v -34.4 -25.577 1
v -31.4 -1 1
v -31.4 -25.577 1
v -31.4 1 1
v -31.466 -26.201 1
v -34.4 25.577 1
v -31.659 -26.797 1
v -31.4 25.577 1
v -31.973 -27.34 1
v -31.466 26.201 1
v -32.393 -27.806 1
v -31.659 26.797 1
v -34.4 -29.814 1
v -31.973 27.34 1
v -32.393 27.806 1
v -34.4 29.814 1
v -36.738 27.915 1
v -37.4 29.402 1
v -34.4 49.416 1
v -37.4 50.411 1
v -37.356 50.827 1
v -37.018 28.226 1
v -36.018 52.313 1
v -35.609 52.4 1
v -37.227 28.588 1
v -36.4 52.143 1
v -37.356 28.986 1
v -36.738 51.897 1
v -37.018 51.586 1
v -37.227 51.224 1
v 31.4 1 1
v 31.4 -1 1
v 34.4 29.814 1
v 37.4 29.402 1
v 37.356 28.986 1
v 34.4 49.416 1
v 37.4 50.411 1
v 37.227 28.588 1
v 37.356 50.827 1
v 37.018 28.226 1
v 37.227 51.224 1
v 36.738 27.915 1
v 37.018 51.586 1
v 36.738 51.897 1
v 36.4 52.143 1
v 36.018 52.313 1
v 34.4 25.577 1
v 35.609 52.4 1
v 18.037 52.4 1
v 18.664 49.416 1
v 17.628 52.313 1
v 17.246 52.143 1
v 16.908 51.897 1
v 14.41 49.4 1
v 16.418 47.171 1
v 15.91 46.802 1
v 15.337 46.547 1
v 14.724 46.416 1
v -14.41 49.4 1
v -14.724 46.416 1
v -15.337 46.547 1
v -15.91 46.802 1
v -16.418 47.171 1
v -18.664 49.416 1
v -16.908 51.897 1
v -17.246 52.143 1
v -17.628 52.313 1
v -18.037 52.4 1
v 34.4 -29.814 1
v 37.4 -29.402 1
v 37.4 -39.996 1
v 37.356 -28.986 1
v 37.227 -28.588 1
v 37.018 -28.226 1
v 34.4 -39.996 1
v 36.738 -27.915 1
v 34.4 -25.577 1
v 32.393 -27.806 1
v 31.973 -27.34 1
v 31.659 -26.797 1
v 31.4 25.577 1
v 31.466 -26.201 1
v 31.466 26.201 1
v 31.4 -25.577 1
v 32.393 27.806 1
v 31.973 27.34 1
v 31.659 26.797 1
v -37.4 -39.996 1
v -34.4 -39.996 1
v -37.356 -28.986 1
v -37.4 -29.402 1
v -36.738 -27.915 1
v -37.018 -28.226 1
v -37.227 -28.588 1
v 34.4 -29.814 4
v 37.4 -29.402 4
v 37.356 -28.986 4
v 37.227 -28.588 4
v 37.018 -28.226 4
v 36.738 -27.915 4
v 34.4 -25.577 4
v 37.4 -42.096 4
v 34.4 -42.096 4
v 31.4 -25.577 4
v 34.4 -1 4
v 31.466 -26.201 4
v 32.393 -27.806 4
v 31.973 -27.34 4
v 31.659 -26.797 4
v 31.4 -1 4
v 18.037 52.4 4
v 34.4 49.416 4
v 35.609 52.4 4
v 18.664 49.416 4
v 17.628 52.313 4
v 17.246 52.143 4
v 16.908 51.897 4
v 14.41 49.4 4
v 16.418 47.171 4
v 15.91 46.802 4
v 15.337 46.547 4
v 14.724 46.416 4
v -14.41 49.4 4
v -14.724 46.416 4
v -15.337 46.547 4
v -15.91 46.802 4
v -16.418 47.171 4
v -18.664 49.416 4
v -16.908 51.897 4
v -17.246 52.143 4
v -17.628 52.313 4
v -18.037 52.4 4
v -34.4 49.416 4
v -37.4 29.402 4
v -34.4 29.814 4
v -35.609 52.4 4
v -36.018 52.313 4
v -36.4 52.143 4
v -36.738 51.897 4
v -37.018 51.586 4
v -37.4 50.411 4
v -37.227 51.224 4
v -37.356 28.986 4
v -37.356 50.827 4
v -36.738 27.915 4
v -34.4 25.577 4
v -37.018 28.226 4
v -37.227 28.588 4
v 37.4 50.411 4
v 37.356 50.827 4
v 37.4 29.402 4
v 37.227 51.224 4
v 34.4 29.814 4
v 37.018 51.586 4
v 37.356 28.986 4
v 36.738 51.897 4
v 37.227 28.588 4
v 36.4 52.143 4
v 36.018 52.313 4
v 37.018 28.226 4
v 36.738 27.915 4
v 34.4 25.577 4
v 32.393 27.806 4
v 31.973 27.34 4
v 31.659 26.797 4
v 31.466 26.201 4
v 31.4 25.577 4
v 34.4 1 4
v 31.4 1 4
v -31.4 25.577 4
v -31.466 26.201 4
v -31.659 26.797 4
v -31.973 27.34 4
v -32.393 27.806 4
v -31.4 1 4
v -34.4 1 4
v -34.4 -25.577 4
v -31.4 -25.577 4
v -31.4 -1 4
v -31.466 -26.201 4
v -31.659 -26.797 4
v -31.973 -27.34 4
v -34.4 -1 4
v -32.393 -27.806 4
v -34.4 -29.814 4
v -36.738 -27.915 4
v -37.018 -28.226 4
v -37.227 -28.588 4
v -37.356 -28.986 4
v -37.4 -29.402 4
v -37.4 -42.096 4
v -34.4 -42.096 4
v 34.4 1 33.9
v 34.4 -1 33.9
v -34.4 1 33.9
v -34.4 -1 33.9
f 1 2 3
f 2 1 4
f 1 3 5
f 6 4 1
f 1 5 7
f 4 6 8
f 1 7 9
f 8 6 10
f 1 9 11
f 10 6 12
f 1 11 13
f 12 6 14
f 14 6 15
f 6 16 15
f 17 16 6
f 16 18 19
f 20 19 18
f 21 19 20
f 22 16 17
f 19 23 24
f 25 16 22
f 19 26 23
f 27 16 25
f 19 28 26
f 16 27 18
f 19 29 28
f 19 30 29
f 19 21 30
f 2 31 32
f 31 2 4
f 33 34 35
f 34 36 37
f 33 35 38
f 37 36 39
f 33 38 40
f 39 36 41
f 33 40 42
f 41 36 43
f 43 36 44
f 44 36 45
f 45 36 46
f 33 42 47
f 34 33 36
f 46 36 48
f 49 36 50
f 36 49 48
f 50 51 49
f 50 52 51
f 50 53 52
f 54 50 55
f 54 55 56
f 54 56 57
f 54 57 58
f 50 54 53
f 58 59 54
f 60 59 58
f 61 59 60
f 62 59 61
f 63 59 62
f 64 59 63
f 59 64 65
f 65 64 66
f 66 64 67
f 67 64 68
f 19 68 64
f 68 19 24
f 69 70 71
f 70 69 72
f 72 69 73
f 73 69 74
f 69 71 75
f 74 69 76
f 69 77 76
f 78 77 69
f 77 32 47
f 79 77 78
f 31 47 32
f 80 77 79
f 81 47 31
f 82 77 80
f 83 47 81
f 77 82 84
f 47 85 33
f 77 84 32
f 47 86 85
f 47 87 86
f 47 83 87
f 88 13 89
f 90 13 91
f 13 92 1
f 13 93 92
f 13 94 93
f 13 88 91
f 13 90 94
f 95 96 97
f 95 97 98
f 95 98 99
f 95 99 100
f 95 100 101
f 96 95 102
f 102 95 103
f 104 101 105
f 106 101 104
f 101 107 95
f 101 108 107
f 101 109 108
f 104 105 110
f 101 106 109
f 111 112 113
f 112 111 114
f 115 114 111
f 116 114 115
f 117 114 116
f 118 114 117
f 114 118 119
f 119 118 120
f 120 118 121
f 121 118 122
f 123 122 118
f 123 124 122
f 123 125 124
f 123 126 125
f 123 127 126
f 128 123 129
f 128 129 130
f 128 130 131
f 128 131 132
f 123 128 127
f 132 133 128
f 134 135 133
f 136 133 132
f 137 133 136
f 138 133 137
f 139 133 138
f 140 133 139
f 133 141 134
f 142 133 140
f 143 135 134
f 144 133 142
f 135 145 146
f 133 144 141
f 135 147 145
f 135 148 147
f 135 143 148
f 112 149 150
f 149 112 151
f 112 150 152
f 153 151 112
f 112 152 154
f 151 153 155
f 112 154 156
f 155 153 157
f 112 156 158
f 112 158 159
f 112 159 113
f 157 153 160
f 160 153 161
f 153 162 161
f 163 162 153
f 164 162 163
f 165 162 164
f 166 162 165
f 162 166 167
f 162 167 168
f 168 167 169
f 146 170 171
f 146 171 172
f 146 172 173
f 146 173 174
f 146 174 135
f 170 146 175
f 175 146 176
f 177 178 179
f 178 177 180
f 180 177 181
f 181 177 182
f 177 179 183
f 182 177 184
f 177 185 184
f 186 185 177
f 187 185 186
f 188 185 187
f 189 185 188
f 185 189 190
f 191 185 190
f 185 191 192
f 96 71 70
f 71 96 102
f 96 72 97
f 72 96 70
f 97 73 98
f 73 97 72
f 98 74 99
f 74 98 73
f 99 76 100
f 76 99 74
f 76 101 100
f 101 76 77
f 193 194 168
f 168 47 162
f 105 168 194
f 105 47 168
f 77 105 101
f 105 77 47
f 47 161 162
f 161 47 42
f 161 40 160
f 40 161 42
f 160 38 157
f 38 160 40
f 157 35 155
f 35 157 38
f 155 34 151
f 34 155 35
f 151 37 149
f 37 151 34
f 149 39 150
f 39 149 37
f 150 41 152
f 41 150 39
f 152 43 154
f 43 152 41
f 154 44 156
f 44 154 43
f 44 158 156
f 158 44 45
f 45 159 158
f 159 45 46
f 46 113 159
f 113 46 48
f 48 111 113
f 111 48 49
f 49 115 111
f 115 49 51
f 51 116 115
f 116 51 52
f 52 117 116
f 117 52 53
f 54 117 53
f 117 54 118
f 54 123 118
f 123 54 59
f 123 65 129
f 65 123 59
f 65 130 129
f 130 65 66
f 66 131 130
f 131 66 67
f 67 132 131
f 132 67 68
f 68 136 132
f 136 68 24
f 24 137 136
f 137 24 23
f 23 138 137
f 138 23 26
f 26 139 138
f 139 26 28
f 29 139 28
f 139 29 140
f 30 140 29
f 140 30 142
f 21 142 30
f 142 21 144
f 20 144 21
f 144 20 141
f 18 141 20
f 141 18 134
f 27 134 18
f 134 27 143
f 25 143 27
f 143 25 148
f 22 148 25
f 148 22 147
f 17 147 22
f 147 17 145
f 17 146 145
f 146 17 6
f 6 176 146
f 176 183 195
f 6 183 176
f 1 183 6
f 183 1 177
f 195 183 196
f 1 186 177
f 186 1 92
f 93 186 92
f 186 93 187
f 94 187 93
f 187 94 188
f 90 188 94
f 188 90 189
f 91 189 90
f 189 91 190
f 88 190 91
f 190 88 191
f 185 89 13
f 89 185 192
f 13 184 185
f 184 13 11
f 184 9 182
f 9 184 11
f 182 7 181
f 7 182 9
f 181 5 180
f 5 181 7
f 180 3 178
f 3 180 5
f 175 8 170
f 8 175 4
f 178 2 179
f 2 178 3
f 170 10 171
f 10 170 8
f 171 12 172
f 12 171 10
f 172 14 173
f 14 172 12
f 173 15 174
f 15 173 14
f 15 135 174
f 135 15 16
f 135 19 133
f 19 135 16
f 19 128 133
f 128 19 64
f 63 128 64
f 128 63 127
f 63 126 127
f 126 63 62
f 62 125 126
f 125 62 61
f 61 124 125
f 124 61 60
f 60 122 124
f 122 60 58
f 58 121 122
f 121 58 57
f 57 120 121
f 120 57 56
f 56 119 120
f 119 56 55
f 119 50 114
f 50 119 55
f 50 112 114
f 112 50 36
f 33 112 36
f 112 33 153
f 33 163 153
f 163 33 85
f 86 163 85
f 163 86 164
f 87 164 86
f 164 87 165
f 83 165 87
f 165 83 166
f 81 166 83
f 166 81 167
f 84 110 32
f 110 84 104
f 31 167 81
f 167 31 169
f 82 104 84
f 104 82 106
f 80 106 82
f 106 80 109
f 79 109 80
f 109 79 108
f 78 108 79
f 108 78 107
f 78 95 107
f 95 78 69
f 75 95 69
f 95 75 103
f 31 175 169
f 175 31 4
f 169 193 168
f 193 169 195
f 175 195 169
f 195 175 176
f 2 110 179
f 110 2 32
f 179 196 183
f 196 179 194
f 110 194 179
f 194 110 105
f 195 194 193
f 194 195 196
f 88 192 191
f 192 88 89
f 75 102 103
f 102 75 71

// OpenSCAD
// file: scad-utils/morphology.scad
// Copyright (c) 2013 Oskar Linde. All rights reserved.
// License: BSD
//
// This library contains basic 2D morphology operations
//
// outset(d=1)            - creates a polygon at an offset d outside a 2D shape
// inset(d=1)             - creates a polygon at an offset d inside a 2D shape
// fillet(r=1)            - adds fillets of radius r to all concave corners of a 2D shape
// rounding(r=1)          - adds rounding to all convex corners of a 2D shape
// shell(d,center=false)  - makes a shell of width d along the edge of a 2D shape
//                        - positive values of d places the shell on the outside
//                        - negative values of d places the shell on the inside
//                        - center=true and positive d places the shell centered on the edge

module outset(d=1) {
	// Bug workaround for older OpenSCAD versions
	if (version_num() < 20130424) render() outset_extruded(d) children();
	else minkowski() {
		circle(r=d);
		children();
	}
}

module outset_extruded(d=1) {
   projection(cut=true) minkowski() {
        cylinder(r=d);
        linear_extrude(center=true) children();
   }
}

module inset(d=1) {
	 render() inverse() outset(d=d) inverse() children();
}

module fillet(r=1) {
	inset(d=r) render() outset(d=r) children();
}

module rounding(r=1) {
	outset(d=r) inset(d=r) children();
}

module shell(d,center=false) {
	if (center && d > 0) {
		difference() {
			outset(d=d/2) children();
			inset(d=d/2) children();
		}
	}
	if (!center && d > 0) {
		difference() {
			outset(d=d) children();
			children();
		}
	}
	if (!center && d < 0) {
		difference() {
			children();
			inset(d=-d) children();
		}
	}
	if (d == 0) children();
}


// Below are for internal use only

module inverse() {
	difference() {
		square(1e5,center=true);
		children();
	}
}


// TEST CODE

use <mirror.scad>

module arrow(l=1,w=.6,t=0.15) {
	mirror_y() polygon([[0,0],[l,0],[l-w/2,w/2],[l-w/2-sqrt(2)*t,w/2],[l-t/2-sqrt(2)*t,t/2],[0,t/2]]);
}

module shape() {
	polygon([[0,0],[1,0],[1.5,1],[2.5,1],[2,-1],[0,-1]]);
}

if(0) assign($fn=32) {

	for (p = [0:10*3-1]) assign(o=floor(p/3)) {
		translate([(p%3)*2.5,-o*3]) {
			//%if (p % 3 == 1) translate([0,0,1]) shape();
			if (p % 3 == 0) shape();
			if (p % 3 == 1) translate([0.6,0]) arrow();
			if (p % 3 == 2) {
				if (o == 0) inset(d=0.3) shape();
				if (o == 1) outset(d=0.3) shape();
				if (o == 2) rounding(r=0.3) shape();
				if (o == 3) fillet(r=0.3) shape();
				if (o == 4) shell(d=0.3) shape();
				if (o == 5) shell(d=-0.3) shape();
				if (o == 6) shell(d=0.3,center=true) shape();
				if (o == 7) rounding(r=0.3) fillet(r=0.3) shape();
				if (o == 8) shell(d=0.3,center=true) fillet(r=0.3) rounding(r=0.3) shape();
				if (o == 9) shell(d=-0.3) fillet(r=0.3) rounding(r=0.3) shape();
			}
		}
	}
}
// file: scad-utils/mirror.scad
// Copyright (c) 2013 Oskar Linde. All rights reserved.
// License: BSD
//
// This library contains simple mirroring functions
//
// mirror_x()
// mirror_y()
// mirror_z()


module mirror_x() {
  union() {
    child();
    scale([-1,1,1]) child();
  }
}

module mirror_y() {
  union() {
    child();
    scale([1,-1,1]) child();
  }
}

module mirror_z() {
  union() {
    child();
    scale([1,1,-1]) child();
  }
}
// file: parametric-stackable-box.scad
include <scad-utils/mirror.scad>
include <scad-utils/morphology.scad>

$fn=30;

/* Parameters */
BODY_X = 80;
BODY_Y = 110;
BODY_Z = 47;

module base(r=1) {
  basePoints = [
    [BODY_X/2, 0],
    [0, 0],
    [0, BODY_Y/4],
    [3, BODY_Y/4 + 3],
    [3, BODY_Y/4 * 3 - 3],
    [0, BODY_Y/4 * 3],
    [0, BODY_Y/4 * 4],
    [0 + BODY_X/3 - 3, BODY_Y/4 * 4],
    [0 + BODY_X/3, BODY_Y/4 * 4 - 3],
    [BODY_X/2, BODY_Y/4 * 4 - 3],
  ];

  pointsCentered = [for (p=basePoints)
    [
      p[0] - BODY_X/2,
      p[1] - BODY_Y/2
    ]
  ];

  points = concat(
    pointsCentered,
    [for (p=pointsCentered) [p[0]*-1, p[1]] ]
  );

  rounding(r=r)
  polygon(points=points);
}

/* Parameters 2 */
WALL_THICK = 0.4*4;

HOLDER_Z_TOTAL = 10;
HOLDER_Z_JOINT = 3;
HOLDER_Z = HOLDER_Z_TOTAL - HOLDER_Z_JOINT;
HOLDER_DELTA = 0.8+0.4*4;
HOLDER_CLEARANCE = 0.4*2;

FRONT_EDGE_DEG = 35;
FRONT_EDGE_LEN = 20;

FRONT_EDGE_TOP_DEG = 30;
FRONT_EDGE_TOP_LEN = 25;

module body() {
  difference() {
    union() {
      // inner
      linear_extrude(height=BODY_Z-HOLDER_Z_TOTAL, center=!true, convexity=10, twist=0)
      base();

      // joint
      translate([0, 0, BODY_Z-HOLDER_Z])
      minkowski() {
        hull() {
          linear_extrude(height=0.01, center=!true)
          rounding(r=2-0.01)
          square(size=[HOLDER_DELTA*2, HOLDER_DELTA*2], center=true);
          translate([0, 0, -HOLDER_Z_JOINT])
          sphere(r=0.01);
        }

        linear_extrude(
          height=0.01,
          center=!true,
          convexity=10
        )
        base();
      }

      // holder
      translate([0, 0, BODY_Z-HOLDER_Z])
      linear_extrude(height=HOLDER_Z, center=!true, convexity=10, twist=0)
      offset(r=HOLDER_DELTA)
      base();
    }

    // inner space
    difference() {
      translate([0, 0, 1])
      linear_extrude(height=BODY_Z, center=!true, convexity=10, twist=0)
      offset(r=-WALL_THICK)
      base();

      // frontEdge
      frontEdge();
    }

    // holder inner space
    translate([0, 0, BODY_Z-HOLDER_Z+1])
    linear_extrude(height=HOLDER_Z, center=!true, convexity=10, twist=0)
    offset(r=HOLDER_CLEARANCE)
    base();

    // front space
    translate([0, -BODY_Y/2, BODY_Z/2 + FRONT_EDGE_LEN + 1])
    cube(size=[BODY_X-WALL_THICK*2, 10, BODY_Z+1], center=true);

    // frontEdge
    translate([0, -1*sin(FRONT_EDGE_DEG), -1*cos(FRONT_EDGE_DEG)])
    frontEdge();

    // frontEdgeTop
    translate([0, -1*sin(FRONT_EDGE_TOP_DEG), -1*cos(FRONT_EDGE_TOP_DEG)])
    frontEdgeTop();
  }
}

module frontEdge(args) {
  translate([0, -BODY_Y/2, 0])
  rotate([FRONT_EDGE_DEG, 0, 0])
  cube(
    size=[
      BODY_X+10,
      FRONT_EDGE_LEN*2*sin(FRONT_EDGE_DEG),
      FRONT_EDGE_LEN*2*cos(FRONT_EDGE_DEG)
    ],
    center=true
  );
}

module frontEdgeTop() {
  translate([0, -BODY_Y/2, BODY_Z])
  rotate([180-FRONT_EDGE_TOP_DEG, 0, 0])
  cube(
    size=[
      BODY_X+10,
      FRONT_EDGE_TOP_LEN*2*sin(FRONT_EDGE_TOP_DEG),
      FRONT_EDGE_TOP_LEN*2*cos(FRONT_EDGE_TOP_DEG)
    ],
    center=true
  );
}

DRAW_BODY=true;
if (DRAW_BODY) {
  body();
}

/* Show dimentions */
module dimenText(text, len, pos=0) {
  module vert(t=0.5) {
    translate([0, len/2 - t/2, -3/2])
    rotate([90, 0, 90])
    square(size=[t, 3], center=true);
  }

  module dimen() {
    rotate([90, 0, 90])
    square(size=[len, 0.5], center=true);

    vert();
    mirror_y()
    vert();
  }

  textAligns = [
    "center",
    "left",
    "right",
    "center",
  ];
  textPositions = [
    [0, 0, 5],
    [0, 5, 0],
    [0, -5, 0],
    [0, 0, -10],
  ];
  dimenRotations = [
    [0, 0, 0],
    [-90, 0, 0],
    [90, 0, 0],
    [0, 180, 0],
  ];

  color("red") {
    translate(textPositions[pos])
    rotate([90, 0, 90])
    text(text, size=4, font="Sans", halign=textAligns[pos], valign="center",
    spacing=1.0, direction="ltr", language="en", script="latin", center=true);

    rotate(dimenRotations[pos])
    dimen();
  }
}

if (DRAW_BODY) {
  translate([0, 0, BODY_Z + 8])
  dimenText("BODY_Y", BODY_Y, 0);

  translate([0, BODY_Y/2 + 8, BODY_Z/2])
  dimenText("BODY_Z", BODY_Z, 1);

  translate([0, BODY_Y/2 + 8 + 8, HOLDER_Z_TOTAL/2 + BODY_Z - HOLDER_Z_TOTAL])
  dimenText("HOLDER_Z_TOTAL", HOLDER_Z_TOTAL, 1);

  translate([0, -BODY_Y/2 - 8, HOLDER_Z_JOINT/2 + BODY_Z - HOLDER_Z_TOTAL])
  dimenText("HOLDER_Z_JOINT", HOLDER_Z_JOINT, 2);

  translate([0, -BODY_Y/2, (FRONT_EDGE_LEN)*sin(FRONT_EDGE_DEG)/2])
  rotate([FRONT_EDGE_DEG, 0, 0])
  dimenText("FRONT_EDGE_LEN", FRONT_EDGE_LEN, 2);
}
// main file
include <parametric-stackable-box.scad>

$fn=30;

/* Parameters */
DRAW_BODY=false;
BODY_Z = 47;

ORG_CLEARANCE=1;
ORG_FRAME_Z=3;
ORG_WALL_T=0.4*5;
ORG_WALL_Z=BODY_Z*0.7;
ORG_DIV_X=1;
ORG_DIV_Y=2;

module orgBase(args) {
  rounding(r=2)
  offset(delta=-WALL_THICK-ORG_CLEARANCE)
  base();
}

translate([0, 0, 1])
difference() {
  union() {
    linear_extrude(height=ORG_FRAME_Z, center=!true, convexity=10, twist=0)
    shell(d=-3)
    orgBase();

    // dividers
    linear_extrude(height=ORG_WALL_Z, center=!true, convexity=10, twist=0)
    intersection() {
      union() {
        xDividers = ORG_DIV_X-1;
        for (i=[0:xDividers]) {
          if (i > 0) {
            distance = BODY_X/ORG_DIV_X;
            total = distance * (xDividers-1);
            translate([distance*(i-1) - total/2, 0, 0])
            square(size=[ORG_WALL_T, BODY_Y], center=true);
          }
        }
        yDividers = ORG_DIV_Y-1;
        for (i=[0:yDividers]) {
          if (i > 0) {
            distance = BODY_Y/ORG_DIV_Y;
            total = distance * (yDividers-1);
            translate([0, distance*(i-1) - total/2, 0])
            square(size=[BODY_X, ORG_WALL_T], center=true);
          }
        }
      }
      if (ORG_DIV_X > 1 || ORG_DIV_Y > 1) {
        orgBase();
      }
    }
  }

  translate([0, ORG_CLEARANCE, 0]){
    frontEdge();
    frontEdgeTop();
  }
}


%body();
